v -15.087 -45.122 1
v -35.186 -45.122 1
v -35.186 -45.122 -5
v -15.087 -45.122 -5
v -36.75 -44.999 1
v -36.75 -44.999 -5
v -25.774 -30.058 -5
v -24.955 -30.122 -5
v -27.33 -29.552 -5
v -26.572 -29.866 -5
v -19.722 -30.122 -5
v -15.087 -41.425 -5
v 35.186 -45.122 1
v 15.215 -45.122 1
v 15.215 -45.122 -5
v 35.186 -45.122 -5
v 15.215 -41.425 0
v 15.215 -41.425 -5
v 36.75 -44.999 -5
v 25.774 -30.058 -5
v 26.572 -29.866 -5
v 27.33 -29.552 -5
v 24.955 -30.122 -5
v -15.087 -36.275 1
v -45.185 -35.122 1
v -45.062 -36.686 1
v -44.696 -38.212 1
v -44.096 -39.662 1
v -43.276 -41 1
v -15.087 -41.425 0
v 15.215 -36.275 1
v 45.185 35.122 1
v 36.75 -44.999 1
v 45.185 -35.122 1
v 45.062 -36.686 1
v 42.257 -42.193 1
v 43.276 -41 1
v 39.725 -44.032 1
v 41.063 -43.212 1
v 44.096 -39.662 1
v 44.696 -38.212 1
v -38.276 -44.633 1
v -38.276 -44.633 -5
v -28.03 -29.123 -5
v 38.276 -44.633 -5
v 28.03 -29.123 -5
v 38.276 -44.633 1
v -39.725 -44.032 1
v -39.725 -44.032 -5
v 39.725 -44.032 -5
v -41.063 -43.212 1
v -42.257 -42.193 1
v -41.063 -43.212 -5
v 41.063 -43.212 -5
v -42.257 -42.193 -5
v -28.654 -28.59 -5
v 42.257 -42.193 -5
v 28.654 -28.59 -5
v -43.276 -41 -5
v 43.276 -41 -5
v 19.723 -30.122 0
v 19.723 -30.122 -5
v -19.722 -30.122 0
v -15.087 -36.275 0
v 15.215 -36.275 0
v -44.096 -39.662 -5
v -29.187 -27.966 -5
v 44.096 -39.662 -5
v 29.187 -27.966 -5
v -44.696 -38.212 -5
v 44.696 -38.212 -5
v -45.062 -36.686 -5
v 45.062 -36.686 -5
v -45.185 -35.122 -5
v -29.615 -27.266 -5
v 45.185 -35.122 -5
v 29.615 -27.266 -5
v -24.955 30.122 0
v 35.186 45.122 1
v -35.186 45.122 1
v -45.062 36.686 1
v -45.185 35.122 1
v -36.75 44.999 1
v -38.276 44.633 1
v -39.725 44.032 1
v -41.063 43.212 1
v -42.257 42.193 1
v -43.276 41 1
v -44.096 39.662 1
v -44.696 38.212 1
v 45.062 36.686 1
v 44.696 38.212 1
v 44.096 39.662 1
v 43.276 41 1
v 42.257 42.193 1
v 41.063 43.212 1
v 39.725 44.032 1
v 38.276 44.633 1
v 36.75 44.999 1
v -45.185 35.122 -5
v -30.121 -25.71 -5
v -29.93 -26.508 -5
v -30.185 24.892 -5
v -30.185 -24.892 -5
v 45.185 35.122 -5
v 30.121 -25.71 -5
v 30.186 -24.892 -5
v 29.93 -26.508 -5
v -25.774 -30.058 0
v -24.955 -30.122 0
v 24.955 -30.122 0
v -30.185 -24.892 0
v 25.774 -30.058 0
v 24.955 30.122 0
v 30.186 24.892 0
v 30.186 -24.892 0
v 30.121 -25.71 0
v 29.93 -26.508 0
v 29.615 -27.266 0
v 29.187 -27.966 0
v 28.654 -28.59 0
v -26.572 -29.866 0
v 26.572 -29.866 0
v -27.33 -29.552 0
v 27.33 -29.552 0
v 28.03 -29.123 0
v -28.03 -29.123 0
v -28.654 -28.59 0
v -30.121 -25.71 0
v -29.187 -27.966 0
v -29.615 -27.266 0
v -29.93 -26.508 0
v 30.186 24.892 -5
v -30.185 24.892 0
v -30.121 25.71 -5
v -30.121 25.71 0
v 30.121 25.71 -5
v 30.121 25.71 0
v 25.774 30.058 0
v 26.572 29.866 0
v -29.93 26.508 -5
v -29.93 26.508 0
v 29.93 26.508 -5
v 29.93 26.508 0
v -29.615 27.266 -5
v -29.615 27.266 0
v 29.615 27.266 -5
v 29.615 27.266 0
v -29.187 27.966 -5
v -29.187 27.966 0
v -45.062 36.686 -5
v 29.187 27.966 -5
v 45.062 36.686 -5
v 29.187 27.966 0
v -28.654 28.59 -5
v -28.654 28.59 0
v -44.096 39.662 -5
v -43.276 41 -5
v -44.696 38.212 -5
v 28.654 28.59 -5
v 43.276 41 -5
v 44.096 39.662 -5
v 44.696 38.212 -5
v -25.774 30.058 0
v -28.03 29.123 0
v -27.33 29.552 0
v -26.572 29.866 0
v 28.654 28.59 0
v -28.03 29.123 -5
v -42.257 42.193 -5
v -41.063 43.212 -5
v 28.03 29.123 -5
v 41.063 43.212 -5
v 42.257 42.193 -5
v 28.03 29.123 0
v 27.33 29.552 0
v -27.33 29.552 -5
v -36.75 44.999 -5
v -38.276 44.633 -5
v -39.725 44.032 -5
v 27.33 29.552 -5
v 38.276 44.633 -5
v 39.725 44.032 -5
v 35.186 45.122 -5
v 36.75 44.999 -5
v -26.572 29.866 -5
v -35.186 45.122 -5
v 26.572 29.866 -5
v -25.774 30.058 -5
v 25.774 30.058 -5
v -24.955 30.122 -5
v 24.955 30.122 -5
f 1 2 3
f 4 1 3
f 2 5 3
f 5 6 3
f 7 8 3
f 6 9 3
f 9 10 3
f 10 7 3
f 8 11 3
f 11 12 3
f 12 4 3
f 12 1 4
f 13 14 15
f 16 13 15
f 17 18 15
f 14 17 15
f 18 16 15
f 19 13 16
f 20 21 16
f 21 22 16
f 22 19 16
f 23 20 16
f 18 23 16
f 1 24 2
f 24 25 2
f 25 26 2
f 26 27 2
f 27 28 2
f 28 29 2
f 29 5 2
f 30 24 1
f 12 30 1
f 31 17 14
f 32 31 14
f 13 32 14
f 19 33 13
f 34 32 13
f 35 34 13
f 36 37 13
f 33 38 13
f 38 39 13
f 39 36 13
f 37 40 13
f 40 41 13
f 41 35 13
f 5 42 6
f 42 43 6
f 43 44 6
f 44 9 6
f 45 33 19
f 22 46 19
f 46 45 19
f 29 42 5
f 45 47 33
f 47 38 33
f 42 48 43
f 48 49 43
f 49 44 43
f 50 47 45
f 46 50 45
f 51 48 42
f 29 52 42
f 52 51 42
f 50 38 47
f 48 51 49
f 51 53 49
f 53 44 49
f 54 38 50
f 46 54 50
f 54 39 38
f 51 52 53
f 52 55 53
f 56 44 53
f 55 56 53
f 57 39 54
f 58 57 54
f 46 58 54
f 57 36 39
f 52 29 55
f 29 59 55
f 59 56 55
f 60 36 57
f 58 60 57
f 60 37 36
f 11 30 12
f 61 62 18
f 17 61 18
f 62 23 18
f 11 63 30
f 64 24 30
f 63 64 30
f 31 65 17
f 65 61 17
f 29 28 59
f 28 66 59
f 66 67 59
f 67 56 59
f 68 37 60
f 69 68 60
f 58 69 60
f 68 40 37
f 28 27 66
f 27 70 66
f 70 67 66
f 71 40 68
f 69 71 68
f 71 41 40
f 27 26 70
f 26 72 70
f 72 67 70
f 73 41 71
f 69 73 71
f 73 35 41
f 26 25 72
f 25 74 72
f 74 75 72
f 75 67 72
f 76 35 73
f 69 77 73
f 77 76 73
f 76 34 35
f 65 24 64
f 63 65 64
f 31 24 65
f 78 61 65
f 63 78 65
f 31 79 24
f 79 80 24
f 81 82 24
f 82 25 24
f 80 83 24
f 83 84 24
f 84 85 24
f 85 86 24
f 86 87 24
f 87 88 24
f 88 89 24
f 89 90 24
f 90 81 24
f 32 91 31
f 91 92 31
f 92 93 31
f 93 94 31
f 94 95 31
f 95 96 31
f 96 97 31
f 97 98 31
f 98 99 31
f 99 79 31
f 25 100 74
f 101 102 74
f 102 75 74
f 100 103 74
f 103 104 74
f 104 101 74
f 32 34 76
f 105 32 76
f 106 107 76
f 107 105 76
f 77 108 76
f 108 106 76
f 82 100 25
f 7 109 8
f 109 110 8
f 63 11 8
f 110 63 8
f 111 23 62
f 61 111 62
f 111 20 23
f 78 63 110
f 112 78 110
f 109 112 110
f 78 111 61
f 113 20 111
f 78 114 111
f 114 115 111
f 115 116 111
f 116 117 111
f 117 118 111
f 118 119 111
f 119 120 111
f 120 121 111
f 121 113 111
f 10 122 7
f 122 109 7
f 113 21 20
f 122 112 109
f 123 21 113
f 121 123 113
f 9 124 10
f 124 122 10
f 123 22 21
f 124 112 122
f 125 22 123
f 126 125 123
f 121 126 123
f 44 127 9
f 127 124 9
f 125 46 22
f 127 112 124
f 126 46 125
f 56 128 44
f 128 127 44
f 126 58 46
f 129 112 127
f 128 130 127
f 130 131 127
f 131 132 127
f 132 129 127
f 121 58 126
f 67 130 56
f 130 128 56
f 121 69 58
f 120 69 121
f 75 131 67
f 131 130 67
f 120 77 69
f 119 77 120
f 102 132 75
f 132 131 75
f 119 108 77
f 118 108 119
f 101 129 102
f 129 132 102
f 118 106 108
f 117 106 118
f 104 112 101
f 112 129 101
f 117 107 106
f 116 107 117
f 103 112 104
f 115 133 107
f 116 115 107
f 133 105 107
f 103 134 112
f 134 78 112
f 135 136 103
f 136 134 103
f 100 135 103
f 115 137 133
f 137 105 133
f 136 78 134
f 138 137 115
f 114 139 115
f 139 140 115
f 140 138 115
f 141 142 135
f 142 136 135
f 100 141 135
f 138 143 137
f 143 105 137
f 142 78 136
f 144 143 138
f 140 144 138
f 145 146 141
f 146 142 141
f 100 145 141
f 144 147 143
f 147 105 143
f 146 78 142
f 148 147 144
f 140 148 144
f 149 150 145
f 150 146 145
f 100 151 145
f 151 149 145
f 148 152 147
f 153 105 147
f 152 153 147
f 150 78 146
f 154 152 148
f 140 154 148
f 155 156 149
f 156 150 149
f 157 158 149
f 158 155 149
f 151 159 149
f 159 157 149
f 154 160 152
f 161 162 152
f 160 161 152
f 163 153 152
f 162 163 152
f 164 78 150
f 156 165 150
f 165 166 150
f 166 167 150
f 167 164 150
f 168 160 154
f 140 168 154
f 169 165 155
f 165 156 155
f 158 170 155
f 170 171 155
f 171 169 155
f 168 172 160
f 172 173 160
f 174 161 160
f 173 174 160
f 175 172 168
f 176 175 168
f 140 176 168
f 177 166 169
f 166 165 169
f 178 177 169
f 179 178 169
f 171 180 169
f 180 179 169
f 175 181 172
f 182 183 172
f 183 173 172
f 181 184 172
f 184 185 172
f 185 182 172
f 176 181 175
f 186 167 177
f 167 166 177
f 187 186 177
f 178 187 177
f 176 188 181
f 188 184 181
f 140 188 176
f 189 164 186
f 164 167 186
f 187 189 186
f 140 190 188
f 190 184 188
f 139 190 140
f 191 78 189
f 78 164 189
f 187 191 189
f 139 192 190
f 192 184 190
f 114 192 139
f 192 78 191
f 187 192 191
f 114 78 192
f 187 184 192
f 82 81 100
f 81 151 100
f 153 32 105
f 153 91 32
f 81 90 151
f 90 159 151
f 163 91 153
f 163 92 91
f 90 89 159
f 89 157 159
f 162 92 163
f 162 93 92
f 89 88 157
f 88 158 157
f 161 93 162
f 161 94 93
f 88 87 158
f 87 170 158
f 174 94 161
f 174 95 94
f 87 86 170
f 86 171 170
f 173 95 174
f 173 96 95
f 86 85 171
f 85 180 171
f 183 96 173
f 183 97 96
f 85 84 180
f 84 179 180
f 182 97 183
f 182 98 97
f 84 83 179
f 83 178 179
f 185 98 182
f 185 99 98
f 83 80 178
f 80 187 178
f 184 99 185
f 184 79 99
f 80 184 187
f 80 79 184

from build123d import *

# Parameters (mm, degrees)
BOSS_EXTRUDE1_DEPTH = 5
BOSS_EXTRUDE2_DEPTH = 1


with BuildPart() as part:
    # Sketch1 → Boss-Extrude1 (new body)
    with BuildSketch(Plane.XY):
        with BuildLine():
            Line((19.723160965, -30.122), (15.214660965, -41.425))
            Line((15.214660965, -41.425), (15.214660965, -45.122))
            Line((15.214660965, -45.122), (35.1855, -45.122))
            ThreePointArc((35.1855, -45.122), (42.256567812, -42.193067812), (45.1855, -35.122))
            Line((45.1855, -35.122), (45.1855, -30.122))
            Line((45.1855, -30.122), (45.1855, 35.122))
            ThreePointArc((45.1855, 35.122), (42.256567812, 42.193067812), (35.1855, 45.122))
            Line((35.1855, 45.122), (-35.1855, 45.122))
            ThreePointArc((-35.1855, 45.122), (-42.256567812, 42.193067812), (-45.1855, 35.122))
            Line((-45.1855, 35.122), (-45.1855, -30.122))
            Line((-45.1855, -30.122), (-45.1855, -35.122))
            ThreePointArc((-45.1855, -35.122), (-42.256567812, -42.193067812), (-35.1855, -45.122))
            Line((-35.1855, -45.122), (-15.086607553, -45.122))
            Line((-15.086607553, -45.122), (-15.086607553, -41.425))
            Line((-15.086607553, -41.425), (-19.722107553, -30.122))
            Line((-19.722107553, -30.122), (-24.9555, -30.122))
            ThreePointArc((-24.9555, -30.122), (-28.653668466, -28.590168466), (-30.1855, -24.892))
            Line((-30.1855, -24.892), (-30.1855, 24.892))
            ThreePointArc((-30.1855, 24.892), (-28.653668466, 28.590168466), (-24.9555, 30.122))
            Line((-24.9555, 30.122), (24.9555, 30.122))
            ThreePointArc((24.9555, 30.122), (28.653668466, 28.590168466), (30.1855, 24.892))
            Line((30.1855, 24.892), (30.1855, -24.892))
            ThreePointArc((30.1855, -24.892), (28.653668466, -28.590168466), (24.9555, -30.122))
            Line((24.9555, -30.122), (19.723160965, -30.122))
        make_face()
    extrude(amount=-BOSS_EXTRUDE1_DEPTH)

    # Sketch2 → Boss-Extrude2 (add)
    with BuildSketch(Plane.XY):
        with BuildLine():
            Line((-24.9555, 30.122), (24.9555, 30.122))
            ThreePointArc((24.9555, 30.122), (28.653668466, 28.590168466), (30.1855, 24.892))
            Line((30.1855, 24.892), (30.1855, -24.892))
            ThreePointArc((30.1855, -24.892), (28.653668466, -28.590168466), (24.9555, -30.122))
            Line((24.9555, -30.122), (19.723160965, -30.122))
            Line((19.723160965, -30.122), (15.214660965, -41.425))
            Line((15.214660965, -41.425), (15.214660965, -45.122))
            Line((15.214660965, -45.122), (35.1855, -45.122))
            ThreePointArc((35.1855, -45.122), (42.256567812, -42.193067812), (45.1855, -35.122))
            Line((45.1855, -35.122), (45.1855, 35.122))
            ThreePointArc((45.1855, 35.122), (42.256567812, 42.193067812), (35.1855, 45.122))
            Line((35.1855, 45.122), (-35.1855, 45.122))
            ThreePointArc((-35.1855, 45.122), (-42.256567812, 42.193067812), (-45.1855, 35.122))
            Line((-45.1855, 35.122), (-45.1855, -35.122))
            ThreePointArc((-45.1855, -35.122), (-42.256567812, -42.193067812), (-35.1855, -45.122))
            Line((-35.1855, -45.122), (-15.086607553, -45.122))
            Line((-15.086607553, -45.122), (-15.086607553, -41.425))
            Line((-15.086607553, -41.425), (-19.722107553, -30.122))
            Line((-19.722107553, -30.122), (-24.9555, -30.122))
            ThreePointArc((-24.9555, -30.122), (-28.653668466, -28.590168466), (-30.1855, -24.892))
            Line((-30.1855, -24.892), (-30.1855, 24.892))
            ThreePointArc((-30.1855, 24.892), (-28.653668466, 28.590168466), (-24.9555, 30.122))
        make_face()
        with BuildLine():
            Line((-19.722107553, -30.122), (-15.086607553, -41.425))
            Line((-15.086607553, -41.425), (-15.086607553, -36.275))
            Line((-15.086607553, -36.275), (15.214660965, -36.275))
            Line((15.214660965, -36.275), (15.214660965, -41.425))
            Line((15.214660965, -41.425), (19.723160965, -30.122))
            Line((19.723160965, -30.122), (24.9555, -30.122))
            ThreePointArc((24.9555, -30.122), (28.653668466, -28.590168466), (30.1855, -24.892))
            Line((30.1855, -24.892), (30.1855, 24.892))
            ThreePointArc((30.1855, 24.892), (28.653668466, 28.590168466), (24.9555, 30.122))
            Line((24.9555, 30.122), (-24.9555, 30.122))
            ThreePointArc((-24.9555, 30.122), (-28.653668466, 28.590168466), (-30.1855, 24.892))
            Line((-30.1855, 24.892), (-30.1855, -24.892))
            ThreePointArc((-30.1855, -24.892), (-28.653668466, -28.590168466), (-24.9555, -30.122))
            Line((-24.9555, -30.122), (-19.722107553, -30.122))
        make_face()
    extrude(amount=BOSS_EXTRUDE2_DEPTH)


solid = part.part
